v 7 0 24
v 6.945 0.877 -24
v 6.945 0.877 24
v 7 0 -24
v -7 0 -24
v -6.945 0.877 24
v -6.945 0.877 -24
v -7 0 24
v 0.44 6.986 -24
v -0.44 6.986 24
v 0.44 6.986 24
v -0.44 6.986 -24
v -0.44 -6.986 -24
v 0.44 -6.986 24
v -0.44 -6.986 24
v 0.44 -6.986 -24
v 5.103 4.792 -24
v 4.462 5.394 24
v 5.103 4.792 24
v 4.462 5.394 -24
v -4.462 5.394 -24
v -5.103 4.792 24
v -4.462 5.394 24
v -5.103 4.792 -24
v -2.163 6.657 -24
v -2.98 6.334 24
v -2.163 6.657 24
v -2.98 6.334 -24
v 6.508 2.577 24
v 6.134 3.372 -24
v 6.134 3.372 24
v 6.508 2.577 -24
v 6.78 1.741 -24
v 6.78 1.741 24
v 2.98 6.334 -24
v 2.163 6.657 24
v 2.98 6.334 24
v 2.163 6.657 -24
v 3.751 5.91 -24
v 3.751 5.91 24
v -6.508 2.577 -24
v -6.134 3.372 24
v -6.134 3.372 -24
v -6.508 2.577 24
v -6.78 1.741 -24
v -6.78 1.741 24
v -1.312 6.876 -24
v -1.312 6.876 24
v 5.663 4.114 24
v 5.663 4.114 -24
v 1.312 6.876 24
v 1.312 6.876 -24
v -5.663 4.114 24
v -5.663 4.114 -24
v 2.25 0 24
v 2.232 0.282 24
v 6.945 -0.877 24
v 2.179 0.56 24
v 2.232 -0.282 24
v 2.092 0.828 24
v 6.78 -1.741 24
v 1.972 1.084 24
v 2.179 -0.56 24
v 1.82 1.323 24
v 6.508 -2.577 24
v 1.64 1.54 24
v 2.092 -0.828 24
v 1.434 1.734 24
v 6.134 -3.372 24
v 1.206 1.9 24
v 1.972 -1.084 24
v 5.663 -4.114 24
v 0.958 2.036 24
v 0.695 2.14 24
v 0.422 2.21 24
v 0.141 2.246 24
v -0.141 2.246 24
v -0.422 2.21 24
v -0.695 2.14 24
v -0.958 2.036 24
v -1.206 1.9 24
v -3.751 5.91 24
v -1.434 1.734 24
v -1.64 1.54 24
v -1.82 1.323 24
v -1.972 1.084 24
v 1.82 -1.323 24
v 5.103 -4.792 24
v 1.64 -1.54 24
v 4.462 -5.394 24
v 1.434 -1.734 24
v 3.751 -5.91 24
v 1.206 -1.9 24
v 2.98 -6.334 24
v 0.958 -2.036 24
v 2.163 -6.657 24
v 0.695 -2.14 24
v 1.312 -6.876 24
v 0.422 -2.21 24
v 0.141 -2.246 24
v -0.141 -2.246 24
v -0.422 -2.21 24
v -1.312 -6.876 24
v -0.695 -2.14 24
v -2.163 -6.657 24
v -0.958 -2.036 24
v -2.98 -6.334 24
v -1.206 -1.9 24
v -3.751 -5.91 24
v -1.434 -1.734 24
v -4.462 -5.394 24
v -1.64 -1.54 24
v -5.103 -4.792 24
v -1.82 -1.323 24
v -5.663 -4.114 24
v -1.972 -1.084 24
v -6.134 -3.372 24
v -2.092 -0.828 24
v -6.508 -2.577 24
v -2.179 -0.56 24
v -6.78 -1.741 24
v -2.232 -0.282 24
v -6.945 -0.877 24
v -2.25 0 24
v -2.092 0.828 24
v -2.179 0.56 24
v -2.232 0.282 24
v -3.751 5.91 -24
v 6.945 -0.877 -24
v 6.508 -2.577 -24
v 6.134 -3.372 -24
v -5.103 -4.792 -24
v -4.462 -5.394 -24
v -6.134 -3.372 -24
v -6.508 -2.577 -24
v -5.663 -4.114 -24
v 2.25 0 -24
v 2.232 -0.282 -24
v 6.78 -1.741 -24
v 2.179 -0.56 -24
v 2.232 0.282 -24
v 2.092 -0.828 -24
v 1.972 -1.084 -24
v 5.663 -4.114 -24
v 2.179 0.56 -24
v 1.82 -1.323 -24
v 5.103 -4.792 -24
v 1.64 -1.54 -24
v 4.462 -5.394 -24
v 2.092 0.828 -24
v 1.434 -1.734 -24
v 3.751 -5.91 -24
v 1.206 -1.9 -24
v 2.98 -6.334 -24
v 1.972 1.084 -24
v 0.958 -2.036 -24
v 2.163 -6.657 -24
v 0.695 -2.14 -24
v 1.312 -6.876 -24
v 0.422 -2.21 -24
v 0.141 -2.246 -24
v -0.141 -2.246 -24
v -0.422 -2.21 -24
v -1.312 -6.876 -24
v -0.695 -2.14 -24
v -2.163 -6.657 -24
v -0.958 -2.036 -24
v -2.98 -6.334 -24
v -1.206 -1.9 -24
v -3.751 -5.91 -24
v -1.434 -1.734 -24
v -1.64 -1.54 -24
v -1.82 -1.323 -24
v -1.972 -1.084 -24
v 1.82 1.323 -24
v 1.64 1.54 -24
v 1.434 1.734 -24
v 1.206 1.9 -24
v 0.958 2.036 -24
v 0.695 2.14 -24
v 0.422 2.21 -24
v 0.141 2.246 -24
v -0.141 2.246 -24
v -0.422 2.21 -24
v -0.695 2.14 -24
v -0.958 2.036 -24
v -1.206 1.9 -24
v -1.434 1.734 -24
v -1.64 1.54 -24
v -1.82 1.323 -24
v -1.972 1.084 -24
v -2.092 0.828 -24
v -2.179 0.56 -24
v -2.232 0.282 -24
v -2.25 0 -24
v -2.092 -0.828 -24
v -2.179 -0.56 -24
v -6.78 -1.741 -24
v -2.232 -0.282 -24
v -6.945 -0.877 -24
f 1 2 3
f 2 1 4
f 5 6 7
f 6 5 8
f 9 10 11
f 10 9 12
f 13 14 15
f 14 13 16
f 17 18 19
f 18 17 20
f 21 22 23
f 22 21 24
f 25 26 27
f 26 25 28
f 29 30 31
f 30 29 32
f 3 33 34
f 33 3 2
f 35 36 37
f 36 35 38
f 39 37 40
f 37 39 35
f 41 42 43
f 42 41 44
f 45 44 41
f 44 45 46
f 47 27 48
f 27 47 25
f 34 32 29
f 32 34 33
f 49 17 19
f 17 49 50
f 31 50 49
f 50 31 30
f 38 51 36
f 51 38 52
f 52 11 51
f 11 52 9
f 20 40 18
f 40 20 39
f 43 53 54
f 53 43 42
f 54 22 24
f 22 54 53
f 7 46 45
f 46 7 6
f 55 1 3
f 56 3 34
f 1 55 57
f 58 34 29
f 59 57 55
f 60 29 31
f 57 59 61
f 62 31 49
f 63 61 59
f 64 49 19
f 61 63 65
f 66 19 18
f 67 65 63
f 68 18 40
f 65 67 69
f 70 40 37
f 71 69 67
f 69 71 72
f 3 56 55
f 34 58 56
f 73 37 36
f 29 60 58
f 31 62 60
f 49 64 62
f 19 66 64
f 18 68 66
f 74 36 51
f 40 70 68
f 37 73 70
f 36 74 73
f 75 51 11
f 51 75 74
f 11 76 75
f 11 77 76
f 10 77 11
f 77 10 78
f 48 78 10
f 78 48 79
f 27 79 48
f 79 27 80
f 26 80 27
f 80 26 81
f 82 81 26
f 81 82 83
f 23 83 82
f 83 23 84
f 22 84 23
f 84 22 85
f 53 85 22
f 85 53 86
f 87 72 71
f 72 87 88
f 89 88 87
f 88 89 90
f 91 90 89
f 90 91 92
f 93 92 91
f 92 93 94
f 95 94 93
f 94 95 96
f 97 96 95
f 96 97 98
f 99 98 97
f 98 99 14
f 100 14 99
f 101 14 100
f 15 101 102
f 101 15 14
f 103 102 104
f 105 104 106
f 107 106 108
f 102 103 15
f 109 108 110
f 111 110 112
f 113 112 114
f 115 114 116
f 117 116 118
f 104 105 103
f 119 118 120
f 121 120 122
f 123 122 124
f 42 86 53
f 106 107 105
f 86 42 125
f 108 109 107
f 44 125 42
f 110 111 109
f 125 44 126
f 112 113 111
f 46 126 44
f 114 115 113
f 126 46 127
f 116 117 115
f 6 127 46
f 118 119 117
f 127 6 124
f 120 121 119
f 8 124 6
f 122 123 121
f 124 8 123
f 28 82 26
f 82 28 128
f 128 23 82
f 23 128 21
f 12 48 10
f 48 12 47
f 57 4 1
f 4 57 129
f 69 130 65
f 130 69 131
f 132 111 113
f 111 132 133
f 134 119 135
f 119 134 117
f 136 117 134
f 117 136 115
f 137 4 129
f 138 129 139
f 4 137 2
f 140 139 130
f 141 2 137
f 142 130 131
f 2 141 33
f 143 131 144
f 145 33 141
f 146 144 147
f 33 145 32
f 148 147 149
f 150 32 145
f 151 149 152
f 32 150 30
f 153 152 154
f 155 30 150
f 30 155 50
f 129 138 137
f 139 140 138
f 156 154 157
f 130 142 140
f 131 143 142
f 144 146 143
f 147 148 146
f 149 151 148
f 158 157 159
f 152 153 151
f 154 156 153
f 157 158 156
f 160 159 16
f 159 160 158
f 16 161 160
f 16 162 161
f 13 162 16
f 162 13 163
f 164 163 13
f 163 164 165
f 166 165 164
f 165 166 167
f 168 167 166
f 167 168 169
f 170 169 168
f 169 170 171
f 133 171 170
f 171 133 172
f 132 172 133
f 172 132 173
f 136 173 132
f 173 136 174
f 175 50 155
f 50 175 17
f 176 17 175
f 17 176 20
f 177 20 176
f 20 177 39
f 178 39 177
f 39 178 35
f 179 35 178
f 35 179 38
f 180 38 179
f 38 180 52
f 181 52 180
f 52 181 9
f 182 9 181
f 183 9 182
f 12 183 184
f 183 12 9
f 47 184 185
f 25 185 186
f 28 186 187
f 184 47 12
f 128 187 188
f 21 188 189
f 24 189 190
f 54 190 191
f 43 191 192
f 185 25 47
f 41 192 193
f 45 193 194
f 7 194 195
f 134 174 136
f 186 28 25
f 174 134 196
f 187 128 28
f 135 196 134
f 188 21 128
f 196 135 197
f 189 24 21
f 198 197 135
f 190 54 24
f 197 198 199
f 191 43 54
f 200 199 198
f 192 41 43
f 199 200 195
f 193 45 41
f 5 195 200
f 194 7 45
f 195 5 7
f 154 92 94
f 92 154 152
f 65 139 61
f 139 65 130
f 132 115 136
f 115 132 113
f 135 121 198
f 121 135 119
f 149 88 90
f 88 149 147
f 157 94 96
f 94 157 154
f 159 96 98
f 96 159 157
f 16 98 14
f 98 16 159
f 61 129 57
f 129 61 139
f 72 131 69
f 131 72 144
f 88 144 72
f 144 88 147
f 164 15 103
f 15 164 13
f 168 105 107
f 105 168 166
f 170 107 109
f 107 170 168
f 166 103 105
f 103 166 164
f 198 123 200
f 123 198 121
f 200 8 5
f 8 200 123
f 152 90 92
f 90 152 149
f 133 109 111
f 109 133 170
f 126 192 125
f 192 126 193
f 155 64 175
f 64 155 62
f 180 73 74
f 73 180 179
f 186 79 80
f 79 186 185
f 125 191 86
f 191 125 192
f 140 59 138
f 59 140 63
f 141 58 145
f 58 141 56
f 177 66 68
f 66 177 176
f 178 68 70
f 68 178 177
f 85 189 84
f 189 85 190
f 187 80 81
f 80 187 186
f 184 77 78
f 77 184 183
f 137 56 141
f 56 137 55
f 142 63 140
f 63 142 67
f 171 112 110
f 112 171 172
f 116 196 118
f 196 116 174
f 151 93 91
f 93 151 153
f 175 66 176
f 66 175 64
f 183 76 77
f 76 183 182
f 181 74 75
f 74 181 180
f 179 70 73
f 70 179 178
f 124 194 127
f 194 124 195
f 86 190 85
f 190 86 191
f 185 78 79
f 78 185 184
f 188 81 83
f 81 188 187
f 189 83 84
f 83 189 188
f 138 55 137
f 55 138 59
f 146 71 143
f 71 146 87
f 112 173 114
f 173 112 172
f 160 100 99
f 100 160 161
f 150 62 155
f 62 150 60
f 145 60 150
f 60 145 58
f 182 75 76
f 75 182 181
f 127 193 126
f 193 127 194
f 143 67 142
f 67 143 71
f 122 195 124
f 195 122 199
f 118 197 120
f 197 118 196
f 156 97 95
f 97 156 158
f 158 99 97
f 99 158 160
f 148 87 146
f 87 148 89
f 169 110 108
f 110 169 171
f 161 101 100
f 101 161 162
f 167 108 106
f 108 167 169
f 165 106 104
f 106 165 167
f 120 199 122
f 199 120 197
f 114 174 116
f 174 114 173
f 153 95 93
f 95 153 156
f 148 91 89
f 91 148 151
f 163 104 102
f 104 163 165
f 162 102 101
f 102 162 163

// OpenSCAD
$fn = 50;


difference() {
	union() {
		translate(v = [0, 0, -24.0000000000]) {
			cylinder(h = 48, r = 7.0000000000);
		}
	}
	union() {
		translate(v = [0, 0, -100.0000000000]) {
			cylinder(h = 200, r = 2.2500000000);
		}
	}
}
